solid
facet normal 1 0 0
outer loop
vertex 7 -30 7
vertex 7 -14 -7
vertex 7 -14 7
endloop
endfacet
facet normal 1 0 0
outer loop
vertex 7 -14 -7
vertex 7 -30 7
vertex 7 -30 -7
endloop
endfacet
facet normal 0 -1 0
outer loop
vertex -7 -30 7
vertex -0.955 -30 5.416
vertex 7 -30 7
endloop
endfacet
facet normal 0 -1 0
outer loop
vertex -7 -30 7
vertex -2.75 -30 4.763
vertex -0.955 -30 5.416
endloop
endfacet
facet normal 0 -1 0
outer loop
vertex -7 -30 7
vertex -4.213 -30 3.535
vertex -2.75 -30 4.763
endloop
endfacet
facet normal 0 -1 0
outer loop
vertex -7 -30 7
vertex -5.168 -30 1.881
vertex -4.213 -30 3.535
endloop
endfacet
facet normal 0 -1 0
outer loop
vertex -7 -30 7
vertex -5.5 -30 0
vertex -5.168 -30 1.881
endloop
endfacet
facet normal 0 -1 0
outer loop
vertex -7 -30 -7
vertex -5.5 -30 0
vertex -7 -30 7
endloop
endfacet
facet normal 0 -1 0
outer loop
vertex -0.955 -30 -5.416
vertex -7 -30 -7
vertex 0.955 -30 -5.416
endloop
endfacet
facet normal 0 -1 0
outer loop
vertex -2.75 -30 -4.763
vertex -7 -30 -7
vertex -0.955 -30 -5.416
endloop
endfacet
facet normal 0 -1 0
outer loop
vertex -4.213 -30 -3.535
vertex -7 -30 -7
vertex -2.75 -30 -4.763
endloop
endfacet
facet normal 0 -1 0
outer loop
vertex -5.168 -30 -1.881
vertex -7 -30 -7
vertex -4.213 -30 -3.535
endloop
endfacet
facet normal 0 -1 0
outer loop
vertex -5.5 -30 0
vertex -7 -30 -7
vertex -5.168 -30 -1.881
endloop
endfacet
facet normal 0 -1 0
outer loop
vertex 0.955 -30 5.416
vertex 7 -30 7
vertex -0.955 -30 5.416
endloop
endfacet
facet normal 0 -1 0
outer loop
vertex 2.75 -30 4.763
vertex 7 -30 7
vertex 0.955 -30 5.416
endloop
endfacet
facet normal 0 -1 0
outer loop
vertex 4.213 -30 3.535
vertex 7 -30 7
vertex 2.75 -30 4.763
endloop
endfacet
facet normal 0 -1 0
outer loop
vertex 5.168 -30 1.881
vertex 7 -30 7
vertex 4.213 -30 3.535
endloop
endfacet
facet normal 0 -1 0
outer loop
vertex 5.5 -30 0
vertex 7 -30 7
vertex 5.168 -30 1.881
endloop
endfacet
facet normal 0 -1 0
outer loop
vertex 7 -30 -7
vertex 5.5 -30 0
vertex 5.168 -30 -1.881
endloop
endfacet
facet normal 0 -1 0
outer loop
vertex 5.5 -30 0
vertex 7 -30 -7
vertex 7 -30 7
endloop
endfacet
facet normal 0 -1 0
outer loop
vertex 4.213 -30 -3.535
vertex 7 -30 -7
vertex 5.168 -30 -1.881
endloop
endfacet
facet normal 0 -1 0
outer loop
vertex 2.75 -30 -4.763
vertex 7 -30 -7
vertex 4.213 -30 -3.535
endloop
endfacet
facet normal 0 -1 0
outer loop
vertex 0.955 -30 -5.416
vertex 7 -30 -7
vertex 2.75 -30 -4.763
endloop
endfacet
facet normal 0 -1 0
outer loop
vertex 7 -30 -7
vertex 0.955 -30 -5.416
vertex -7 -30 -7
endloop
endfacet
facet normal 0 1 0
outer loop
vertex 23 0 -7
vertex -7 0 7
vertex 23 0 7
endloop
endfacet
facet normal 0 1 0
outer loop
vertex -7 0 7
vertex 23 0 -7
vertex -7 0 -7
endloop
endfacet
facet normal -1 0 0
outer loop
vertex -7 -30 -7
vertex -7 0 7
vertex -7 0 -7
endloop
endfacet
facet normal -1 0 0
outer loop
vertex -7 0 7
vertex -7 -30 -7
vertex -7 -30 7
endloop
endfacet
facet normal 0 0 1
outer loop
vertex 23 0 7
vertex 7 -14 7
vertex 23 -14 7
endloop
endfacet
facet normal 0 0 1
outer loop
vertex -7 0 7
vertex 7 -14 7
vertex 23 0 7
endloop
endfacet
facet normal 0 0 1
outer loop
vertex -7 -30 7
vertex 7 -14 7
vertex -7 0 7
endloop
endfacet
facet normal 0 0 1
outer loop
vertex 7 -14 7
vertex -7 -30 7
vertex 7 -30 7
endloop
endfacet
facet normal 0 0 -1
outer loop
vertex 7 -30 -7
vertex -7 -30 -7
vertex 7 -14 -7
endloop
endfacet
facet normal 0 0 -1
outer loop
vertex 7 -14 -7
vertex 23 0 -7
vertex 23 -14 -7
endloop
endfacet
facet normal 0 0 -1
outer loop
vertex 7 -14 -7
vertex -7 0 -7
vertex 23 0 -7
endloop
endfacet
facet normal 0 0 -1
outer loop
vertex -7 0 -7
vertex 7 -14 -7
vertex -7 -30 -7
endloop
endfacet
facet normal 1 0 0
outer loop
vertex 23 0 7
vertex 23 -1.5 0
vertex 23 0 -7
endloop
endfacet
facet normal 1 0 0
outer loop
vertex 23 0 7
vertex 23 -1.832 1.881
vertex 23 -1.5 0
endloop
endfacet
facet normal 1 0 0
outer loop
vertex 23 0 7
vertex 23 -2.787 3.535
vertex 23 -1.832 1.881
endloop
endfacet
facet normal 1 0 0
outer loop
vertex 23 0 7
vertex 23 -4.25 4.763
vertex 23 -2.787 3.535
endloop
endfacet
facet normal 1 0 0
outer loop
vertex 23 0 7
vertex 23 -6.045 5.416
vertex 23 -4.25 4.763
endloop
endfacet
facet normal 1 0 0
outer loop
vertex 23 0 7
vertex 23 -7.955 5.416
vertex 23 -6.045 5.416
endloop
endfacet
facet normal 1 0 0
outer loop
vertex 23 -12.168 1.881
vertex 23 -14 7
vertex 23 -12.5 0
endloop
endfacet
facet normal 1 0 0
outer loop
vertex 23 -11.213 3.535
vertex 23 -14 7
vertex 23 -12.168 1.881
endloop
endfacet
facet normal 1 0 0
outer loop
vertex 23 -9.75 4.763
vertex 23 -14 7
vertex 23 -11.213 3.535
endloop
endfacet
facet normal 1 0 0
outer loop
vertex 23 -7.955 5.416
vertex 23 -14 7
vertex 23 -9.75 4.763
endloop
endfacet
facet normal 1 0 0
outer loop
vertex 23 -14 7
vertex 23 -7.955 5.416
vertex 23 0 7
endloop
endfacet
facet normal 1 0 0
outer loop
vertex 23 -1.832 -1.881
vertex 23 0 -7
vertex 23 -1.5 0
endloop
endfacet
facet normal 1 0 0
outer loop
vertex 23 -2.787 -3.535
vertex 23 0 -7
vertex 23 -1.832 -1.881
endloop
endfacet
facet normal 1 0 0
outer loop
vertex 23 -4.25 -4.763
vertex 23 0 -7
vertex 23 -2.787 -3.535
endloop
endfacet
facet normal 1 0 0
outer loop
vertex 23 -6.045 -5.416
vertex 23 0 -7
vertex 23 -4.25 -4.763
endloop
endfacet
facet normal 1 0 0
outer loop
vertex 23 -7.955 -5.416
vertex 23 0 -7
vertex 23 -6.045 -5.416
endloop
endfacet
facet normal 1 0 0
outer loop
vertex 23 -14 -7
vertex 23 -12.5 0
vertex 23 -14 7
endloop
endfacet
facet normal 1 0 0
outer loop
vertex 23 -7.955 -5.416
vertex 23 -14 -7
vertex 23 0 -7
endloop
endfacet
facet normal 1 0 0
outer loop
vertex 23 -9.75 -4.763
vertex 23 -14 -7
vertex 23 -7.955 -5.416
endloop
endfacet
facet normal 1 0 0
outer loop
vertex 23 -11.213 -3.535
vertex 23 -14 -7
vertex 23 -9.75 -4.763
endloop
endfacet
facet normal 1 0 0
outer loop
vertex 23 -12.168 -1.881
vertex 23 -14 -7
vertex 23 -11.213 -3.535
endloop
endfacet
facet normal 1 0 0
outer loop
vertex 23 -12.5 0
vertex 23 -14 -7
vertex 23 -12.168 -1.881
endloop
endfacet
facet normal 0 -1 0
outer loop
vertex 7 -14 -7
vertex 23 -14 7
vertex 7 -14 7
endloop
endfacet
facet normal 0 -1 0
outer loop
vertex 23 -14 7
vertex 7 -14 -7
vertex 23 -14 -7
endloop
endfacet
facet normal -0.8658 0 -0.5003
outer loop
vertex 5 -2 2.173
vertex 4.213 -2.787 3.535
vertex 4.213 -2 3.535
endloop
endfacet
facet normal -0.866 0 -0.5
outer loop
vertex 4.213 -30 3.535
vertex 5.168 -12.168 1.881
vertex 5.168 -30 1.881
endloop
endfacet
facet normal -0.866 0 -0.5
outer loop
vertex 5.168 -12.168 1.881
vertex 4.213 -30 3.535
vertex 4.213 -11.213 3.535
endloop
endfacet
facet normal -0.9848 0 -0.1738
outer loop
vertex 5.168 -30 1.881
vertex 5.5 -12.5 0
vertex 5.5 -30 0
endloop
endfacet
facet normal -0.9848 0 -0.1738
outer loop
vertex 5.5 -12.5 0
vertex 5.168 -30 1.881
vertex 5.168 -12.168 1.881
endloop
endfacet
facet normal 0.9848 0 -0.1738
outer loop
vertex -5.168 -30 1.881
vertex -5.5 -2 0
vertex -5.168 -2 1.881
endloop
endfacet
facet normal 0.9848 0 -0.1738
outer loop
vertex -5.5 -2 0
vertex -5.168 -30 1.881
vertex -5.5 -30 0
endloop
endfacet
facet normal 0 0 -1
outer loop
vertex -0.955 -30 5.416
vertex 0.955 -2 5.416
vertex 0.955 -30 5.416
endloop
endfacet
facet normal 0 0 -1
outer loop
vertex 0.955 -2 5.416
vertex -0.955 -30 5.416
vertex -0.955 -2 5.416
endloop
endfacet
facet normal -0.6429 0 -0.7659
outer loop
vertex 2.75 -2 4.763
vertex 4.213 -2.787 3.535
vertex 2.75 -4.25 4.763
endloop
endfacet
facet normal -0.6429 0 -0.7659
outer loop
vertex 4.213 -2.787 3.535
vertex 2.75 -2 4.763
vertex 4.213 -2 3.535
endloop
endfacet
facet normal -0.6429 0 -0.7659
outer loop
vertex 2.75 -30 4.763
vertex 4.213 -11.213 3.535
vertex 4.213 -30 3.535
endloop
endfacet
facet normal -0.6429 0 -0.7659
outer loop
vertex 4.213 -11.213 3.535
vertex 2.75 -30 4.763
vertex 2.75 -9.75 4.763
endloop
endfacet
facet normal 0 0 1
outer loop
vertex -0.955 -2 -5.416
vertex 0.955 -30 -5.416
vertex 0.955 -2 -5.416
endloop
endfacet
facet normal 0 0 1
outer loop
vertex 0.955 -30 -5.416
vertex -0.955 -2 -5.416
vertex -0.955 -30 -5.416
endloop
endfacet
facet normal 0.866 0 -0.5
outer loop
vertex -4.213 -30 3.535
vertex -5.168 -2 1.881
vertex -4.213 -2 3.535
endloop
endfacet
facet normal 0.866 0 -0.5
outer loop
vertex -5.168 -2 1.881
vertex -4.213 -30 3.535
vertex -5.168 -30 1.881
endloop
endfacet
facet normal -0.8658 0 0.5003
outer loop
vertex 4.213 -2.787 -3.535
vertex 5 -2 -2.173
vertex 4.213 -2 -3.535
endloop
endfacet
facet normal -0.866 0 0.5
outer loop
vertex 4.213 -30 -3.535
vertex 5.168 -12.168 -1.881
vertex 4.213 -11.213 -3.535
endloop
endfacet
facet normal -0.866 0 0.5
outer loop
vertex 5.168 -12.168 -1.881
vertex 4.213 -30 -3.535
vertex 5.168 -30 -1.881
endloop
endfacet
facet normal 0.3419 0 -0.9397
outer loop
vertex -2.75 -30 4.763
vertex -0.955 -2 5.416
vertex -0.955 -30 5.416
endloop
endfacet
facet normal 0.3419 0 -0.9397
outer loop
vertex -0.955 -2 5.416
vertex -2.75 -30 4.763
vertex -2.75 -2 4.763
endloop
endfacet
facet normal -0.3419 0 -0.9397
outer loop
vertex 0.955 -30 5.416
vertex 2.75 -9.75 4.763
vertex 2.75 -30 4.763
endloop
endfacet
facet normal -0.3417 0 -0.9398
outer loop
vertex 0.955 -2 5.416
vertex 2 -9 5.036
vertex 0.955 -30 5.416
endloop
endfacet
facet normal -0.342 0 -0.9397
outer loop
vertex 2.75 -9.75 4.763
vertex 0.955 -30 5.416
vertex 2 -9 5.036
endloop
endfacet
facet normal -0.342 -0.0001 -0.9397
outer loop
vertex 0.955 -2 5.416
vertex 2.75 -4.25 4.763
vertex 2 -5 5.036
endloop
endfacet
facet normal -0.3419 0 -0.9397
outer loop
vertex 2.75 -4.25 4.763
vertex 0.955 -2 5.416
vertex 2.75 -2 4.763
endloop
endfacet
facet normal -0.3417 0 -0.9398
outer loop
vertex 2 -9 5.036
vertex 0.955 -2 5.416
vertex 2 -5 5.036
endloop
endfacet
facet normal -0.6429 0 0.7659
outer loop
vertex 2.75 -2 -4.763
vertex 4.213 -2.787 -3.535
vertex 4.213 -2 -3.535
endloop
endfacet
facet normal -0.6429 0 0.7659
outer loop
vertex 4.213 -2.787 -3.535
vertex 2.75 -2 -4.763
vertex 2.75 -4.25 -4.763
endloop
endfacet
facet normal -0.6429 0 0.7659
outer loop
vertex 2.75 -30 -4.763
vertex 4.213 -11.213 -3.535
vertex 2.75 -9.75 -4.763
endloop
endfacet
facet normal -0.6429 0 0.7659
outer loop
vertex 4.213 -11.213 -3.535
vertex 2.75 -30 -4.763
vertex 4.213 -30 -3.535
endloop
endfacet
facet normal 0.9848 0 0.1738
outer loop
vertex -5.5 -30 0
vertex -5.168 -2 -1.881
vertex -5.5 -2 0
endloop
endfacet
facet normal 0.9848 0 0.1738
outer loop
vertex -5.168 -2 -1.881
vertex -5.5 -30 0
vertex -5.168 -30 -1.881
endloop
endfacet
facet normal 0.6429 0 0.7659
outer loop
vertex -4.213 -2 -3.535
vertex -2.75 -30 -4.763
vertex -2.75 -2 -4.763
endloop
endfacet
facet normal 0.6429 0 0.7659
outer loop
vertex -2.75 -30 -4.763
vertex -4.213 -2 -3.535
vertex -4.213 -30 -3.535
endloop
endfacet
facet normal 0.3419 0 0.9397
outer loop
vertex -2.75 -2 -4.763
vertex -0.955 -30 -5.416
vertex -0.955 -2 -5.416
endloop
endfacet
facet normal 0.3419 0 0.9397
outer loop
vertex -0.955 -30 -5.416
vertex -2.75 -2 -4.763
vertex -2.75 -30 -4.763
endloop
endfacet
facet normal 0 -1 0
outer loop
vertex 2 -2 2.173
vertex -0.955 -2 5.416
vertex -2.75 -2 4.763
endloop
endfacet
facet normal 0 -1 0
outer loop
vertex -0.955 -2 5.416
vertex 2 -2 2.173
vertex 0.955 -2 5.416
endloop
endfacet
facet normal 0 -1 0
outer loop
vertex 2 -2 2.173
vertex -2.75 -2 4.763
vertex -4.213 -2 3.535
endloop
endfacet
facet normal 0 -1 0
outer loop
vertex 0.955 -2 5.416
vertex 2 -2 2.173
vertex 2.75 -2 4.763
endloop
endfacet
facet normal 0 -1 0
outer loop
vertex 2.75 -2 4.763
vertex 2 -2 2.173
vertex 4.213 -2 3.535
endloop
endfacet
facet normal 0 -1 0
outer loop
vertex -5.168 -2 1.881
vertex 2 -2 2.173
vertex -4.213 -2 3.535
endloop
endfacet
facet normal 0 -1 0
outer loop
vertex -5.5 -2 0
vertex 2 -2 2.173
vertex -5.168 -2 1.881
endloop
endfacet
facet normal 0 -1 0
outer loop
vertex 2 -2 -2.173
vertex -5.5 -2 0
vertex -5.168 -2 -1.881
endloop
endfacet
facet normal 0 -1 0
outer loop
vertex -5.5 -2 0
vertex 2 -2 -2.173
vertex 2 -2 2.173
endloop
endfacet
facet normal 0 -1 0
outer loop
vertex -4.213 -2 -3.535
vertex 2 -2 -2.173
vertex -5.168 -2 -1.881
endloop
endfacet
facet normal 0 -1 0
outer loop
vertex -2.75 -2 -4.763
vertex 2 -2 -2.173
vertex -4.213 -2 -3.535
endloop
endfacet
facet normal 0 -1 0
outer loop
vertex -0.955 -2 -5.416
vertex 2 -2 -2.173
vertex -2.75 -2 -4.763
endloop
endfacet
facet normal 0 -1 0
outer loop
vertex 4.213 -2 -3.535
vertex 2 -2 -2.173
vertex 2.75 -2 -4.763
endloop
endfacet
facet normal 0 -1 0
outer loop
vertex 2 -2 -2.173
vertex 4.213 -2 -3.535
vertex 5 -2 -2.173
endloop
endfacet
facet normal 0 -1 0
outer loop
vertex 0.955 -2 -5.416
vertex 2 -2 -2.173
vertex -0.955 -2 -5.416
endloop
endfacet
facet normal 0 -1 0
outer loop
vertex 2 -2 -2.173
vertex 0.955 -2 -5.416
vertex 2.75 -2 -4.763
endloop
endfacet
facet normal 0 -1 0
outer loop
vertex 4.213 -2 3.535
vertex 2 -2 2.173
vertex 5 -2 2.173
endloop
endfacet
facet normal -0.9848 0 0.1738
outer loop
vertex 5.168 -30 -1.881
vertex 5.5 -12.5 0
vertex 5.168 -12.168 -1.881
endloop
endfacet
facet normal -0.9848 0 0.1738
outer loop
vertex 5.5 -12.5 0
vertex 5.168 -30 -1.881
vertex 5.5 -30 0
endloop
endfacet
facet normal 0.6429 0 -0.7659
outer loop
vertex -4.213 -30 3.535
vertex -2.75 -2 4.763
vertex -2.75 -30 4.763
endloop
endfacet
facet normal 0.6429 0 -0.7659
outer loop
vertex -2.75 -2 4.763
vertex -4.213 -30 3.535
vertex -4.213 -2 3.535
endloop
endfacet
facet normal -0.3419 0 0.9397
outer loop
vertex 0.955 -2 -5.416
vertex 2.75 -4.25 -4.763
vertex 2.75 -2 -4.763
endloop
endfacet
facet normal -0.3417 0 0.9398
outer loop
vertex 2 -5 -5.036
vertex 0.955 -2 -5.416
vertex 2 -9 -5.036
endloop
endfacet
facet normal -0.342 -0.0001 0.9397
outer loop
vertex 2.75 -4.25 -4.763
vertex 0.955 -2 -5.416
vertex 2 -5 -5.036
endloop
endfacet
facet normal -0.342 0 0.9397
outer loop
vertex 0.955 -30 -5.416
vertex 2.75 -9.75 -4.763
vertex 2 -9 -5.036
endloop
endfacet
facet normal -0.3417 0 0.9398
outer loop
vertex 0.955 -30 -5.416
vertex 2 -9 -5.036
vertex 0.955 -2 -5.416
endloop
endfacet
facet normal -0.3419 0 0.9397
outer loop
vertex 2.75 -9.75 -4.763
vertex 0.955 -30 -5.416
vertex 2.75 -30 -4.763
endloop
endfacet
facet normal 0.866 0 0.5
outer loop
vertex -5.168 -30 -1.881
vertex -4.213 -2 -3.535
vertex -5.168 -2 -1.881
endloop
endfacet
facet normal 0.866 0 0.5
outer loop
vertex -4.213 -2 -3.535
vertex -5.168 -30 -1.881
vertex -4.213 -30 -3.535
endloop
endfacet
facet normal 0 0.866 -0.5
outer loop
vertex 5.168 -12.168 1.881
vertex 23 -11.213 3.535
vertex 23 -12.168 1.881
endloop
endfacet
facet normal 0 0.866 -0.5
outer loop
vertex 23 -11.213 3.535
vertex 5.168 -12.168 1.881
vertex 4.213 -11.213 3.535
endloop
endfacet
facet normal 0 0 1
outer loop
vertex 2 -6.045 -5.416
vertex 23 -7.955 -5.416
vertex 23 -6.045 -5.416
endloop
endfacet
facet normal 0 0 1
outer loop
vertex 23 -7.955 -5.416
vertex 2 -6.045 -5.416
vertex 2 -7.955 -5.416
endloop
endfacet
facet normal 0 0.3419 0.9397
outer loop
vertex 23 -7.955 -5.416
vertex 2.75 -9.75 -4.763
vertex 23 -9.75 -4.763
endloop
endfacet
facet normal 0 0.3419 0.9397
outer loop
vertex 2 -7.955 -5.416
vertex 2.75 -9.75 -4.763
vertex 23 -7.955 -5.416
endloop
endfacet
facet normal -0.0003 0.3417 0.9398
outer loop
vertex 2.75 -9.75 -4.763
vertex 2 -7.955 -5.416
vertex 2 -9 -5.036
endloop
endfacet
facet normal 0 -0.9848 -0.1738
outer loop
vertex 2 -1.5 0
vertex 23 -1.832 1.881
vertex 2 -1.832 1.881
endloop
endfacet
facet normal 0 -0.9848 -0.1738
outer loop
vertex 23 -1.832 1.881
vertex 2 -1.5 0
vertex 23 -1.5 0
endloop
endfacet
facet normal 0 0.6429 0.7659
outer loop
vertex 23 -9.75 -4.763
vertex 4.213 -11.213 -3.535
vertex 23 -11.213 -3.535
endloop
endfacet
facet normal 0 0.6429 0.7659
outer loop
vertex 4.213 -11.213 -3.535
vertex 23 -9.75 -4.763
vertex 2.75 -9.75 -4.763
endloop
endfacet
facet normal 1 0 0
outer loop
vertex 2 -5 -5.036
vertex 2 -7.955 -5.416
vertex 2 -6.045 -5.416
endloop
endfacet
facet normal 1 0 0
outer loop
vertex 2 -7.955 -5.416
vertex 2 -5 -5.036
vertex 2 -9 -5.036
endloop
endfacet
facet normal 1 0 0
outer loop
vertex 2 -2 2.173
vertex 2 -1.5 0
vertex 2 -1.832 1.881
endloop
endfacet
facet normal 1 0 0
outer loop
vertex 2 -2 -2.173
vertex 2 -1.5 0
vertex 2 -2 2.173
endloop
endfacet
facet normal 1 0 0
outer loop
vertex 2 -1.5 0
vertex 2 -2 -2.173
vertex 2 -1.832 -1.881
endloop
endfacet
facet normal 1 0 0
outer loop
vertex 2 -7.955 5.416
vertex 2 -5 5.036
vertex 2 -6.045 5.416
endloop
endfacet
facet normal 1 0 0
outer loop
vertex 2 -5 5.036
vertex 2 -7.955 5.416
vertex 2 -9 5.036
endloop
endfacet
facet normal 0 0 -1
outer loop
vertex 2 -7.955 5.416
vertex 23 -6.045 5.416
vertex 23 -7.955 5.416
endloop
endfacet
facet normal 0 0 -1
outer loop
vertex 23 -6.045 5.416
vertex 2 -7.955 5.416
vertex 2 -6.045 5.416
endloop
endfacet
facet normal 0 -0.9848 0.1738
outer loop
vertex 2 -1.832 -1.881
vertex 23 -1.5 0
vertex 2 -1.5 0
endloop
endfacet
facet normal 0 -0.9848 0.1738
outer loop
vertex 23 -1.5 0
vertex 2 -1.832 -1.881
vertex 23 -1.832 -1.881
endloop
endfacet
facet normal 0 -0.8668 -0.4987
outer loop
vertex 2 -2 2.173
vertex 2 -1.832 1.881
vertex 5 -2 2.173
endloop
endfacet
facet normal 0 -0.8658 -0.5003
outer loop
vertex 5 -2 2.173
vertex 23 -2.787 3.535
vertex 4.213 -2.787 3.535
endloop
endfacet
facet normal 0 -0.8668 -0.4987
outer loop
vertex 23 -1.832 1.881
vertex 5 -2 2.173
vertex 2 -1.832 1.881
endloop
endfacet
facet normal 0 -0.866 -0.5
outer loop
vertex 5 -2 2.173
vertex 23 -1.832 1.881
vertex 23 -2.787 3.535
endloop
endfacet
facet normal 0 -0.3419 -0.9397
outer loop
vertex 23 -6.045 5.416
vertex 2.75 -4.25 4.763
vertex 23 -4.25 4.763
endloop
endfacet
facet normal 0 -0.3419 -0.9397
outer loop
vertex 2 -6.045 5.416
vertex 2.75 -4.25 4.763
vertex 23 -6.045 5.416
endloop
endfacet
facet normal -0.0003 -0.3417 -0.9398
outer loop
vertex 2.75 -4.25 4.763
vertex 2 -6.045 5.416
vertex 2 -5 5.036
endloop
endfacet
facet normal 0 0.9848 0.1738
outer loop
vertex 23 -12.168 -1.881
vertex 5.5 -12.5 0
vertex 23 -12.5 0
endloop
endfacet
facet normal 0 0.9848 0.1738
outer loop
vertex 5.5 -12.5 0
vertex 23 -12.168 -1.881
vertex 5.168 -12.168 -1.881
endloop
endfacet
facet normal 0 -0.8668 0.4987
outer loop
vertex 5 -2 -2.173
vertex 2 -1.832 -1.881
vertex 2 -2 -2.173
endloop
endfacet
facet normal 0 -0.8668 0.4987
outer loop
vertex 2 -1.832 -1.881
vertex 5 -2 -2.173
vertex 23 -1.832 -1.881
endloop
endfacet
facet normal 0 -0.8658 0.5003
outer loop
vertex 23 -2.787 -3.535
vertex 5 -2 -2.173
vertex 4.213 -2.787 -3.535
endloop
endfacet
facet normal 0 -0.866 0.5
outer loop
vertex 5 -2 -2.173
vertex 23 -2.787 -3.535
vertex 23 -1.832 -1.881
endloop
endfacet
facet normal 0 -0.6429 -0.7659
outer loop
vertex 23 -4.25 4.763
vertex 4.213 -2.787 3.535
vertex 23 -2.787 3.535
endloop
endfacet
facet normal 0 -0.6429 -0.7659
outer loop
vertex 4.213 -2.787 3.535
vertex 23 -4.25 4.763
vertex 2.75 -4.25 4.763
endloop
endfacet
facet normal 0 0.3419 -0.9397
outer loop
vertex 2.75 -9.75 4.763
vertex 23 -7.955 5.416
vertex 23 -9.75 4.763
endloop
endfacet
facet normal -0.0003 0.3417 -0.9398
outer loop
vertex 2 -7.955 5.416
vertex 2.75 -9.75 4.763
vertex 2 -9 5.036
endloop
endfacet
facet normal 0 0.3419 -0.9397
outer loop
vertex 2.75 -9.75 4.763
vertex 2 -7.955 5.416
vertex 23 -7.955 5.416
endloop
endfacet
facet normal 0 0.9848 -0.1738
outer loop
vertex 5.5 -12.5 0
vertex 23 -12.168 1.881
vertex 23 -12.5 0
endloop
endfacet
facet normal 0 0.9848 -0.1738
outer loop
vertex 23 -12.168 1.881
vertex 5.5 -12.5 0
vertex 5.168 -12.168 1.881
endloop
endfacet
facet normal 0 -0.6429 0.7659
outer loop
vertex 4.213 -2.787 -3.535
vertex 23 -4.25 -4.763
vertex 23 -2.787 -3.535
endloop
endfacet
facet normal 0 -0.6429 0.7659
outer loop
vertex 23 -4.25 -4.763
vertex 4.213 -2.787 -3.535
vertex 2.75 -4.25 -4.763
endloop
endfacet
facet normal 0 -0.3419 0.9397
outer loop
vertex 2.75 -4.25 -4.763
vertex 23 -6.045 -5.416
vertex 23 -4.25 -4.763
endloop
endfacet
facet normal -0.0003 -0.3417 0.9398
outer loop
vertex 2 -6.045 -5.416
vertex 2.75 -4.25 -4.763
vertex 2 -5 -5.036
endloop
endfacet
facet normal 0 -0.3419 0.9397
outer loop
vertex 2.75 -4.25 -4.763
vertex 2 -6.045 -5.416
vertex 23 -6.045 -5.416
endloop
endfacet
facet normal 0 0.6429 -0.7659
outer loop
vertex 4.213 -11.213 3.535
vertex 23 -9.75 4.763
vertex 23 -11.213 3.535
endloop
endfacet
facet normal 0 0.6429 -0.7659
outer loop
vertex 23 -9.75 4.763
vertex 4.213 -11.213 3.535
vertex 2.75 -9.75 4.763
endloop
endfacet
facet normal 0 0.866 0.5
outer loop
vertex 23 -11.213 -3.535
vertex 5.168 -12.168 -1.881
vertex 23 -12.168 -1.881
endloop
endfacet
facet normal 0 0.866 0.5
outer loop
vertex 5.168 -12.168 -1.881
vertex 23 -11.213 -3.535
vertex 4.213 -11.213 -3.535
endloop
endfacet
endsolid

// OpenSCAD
include <BOSL/constants.scad>
include <BOSL/transforms.scad>
use <BOSL/shapes.scad>

xrot(90) difference() { 
    union() {
        upcube([14,14,30]);
        cuboid([23, 14, 14], align=V_TOP+V_RIGHT);
    }
    zmove(2) cylinder(d=11, h=30);
    zmove(7) yrot(90) zmove(2) cylinder(d=11, h=30);
}
